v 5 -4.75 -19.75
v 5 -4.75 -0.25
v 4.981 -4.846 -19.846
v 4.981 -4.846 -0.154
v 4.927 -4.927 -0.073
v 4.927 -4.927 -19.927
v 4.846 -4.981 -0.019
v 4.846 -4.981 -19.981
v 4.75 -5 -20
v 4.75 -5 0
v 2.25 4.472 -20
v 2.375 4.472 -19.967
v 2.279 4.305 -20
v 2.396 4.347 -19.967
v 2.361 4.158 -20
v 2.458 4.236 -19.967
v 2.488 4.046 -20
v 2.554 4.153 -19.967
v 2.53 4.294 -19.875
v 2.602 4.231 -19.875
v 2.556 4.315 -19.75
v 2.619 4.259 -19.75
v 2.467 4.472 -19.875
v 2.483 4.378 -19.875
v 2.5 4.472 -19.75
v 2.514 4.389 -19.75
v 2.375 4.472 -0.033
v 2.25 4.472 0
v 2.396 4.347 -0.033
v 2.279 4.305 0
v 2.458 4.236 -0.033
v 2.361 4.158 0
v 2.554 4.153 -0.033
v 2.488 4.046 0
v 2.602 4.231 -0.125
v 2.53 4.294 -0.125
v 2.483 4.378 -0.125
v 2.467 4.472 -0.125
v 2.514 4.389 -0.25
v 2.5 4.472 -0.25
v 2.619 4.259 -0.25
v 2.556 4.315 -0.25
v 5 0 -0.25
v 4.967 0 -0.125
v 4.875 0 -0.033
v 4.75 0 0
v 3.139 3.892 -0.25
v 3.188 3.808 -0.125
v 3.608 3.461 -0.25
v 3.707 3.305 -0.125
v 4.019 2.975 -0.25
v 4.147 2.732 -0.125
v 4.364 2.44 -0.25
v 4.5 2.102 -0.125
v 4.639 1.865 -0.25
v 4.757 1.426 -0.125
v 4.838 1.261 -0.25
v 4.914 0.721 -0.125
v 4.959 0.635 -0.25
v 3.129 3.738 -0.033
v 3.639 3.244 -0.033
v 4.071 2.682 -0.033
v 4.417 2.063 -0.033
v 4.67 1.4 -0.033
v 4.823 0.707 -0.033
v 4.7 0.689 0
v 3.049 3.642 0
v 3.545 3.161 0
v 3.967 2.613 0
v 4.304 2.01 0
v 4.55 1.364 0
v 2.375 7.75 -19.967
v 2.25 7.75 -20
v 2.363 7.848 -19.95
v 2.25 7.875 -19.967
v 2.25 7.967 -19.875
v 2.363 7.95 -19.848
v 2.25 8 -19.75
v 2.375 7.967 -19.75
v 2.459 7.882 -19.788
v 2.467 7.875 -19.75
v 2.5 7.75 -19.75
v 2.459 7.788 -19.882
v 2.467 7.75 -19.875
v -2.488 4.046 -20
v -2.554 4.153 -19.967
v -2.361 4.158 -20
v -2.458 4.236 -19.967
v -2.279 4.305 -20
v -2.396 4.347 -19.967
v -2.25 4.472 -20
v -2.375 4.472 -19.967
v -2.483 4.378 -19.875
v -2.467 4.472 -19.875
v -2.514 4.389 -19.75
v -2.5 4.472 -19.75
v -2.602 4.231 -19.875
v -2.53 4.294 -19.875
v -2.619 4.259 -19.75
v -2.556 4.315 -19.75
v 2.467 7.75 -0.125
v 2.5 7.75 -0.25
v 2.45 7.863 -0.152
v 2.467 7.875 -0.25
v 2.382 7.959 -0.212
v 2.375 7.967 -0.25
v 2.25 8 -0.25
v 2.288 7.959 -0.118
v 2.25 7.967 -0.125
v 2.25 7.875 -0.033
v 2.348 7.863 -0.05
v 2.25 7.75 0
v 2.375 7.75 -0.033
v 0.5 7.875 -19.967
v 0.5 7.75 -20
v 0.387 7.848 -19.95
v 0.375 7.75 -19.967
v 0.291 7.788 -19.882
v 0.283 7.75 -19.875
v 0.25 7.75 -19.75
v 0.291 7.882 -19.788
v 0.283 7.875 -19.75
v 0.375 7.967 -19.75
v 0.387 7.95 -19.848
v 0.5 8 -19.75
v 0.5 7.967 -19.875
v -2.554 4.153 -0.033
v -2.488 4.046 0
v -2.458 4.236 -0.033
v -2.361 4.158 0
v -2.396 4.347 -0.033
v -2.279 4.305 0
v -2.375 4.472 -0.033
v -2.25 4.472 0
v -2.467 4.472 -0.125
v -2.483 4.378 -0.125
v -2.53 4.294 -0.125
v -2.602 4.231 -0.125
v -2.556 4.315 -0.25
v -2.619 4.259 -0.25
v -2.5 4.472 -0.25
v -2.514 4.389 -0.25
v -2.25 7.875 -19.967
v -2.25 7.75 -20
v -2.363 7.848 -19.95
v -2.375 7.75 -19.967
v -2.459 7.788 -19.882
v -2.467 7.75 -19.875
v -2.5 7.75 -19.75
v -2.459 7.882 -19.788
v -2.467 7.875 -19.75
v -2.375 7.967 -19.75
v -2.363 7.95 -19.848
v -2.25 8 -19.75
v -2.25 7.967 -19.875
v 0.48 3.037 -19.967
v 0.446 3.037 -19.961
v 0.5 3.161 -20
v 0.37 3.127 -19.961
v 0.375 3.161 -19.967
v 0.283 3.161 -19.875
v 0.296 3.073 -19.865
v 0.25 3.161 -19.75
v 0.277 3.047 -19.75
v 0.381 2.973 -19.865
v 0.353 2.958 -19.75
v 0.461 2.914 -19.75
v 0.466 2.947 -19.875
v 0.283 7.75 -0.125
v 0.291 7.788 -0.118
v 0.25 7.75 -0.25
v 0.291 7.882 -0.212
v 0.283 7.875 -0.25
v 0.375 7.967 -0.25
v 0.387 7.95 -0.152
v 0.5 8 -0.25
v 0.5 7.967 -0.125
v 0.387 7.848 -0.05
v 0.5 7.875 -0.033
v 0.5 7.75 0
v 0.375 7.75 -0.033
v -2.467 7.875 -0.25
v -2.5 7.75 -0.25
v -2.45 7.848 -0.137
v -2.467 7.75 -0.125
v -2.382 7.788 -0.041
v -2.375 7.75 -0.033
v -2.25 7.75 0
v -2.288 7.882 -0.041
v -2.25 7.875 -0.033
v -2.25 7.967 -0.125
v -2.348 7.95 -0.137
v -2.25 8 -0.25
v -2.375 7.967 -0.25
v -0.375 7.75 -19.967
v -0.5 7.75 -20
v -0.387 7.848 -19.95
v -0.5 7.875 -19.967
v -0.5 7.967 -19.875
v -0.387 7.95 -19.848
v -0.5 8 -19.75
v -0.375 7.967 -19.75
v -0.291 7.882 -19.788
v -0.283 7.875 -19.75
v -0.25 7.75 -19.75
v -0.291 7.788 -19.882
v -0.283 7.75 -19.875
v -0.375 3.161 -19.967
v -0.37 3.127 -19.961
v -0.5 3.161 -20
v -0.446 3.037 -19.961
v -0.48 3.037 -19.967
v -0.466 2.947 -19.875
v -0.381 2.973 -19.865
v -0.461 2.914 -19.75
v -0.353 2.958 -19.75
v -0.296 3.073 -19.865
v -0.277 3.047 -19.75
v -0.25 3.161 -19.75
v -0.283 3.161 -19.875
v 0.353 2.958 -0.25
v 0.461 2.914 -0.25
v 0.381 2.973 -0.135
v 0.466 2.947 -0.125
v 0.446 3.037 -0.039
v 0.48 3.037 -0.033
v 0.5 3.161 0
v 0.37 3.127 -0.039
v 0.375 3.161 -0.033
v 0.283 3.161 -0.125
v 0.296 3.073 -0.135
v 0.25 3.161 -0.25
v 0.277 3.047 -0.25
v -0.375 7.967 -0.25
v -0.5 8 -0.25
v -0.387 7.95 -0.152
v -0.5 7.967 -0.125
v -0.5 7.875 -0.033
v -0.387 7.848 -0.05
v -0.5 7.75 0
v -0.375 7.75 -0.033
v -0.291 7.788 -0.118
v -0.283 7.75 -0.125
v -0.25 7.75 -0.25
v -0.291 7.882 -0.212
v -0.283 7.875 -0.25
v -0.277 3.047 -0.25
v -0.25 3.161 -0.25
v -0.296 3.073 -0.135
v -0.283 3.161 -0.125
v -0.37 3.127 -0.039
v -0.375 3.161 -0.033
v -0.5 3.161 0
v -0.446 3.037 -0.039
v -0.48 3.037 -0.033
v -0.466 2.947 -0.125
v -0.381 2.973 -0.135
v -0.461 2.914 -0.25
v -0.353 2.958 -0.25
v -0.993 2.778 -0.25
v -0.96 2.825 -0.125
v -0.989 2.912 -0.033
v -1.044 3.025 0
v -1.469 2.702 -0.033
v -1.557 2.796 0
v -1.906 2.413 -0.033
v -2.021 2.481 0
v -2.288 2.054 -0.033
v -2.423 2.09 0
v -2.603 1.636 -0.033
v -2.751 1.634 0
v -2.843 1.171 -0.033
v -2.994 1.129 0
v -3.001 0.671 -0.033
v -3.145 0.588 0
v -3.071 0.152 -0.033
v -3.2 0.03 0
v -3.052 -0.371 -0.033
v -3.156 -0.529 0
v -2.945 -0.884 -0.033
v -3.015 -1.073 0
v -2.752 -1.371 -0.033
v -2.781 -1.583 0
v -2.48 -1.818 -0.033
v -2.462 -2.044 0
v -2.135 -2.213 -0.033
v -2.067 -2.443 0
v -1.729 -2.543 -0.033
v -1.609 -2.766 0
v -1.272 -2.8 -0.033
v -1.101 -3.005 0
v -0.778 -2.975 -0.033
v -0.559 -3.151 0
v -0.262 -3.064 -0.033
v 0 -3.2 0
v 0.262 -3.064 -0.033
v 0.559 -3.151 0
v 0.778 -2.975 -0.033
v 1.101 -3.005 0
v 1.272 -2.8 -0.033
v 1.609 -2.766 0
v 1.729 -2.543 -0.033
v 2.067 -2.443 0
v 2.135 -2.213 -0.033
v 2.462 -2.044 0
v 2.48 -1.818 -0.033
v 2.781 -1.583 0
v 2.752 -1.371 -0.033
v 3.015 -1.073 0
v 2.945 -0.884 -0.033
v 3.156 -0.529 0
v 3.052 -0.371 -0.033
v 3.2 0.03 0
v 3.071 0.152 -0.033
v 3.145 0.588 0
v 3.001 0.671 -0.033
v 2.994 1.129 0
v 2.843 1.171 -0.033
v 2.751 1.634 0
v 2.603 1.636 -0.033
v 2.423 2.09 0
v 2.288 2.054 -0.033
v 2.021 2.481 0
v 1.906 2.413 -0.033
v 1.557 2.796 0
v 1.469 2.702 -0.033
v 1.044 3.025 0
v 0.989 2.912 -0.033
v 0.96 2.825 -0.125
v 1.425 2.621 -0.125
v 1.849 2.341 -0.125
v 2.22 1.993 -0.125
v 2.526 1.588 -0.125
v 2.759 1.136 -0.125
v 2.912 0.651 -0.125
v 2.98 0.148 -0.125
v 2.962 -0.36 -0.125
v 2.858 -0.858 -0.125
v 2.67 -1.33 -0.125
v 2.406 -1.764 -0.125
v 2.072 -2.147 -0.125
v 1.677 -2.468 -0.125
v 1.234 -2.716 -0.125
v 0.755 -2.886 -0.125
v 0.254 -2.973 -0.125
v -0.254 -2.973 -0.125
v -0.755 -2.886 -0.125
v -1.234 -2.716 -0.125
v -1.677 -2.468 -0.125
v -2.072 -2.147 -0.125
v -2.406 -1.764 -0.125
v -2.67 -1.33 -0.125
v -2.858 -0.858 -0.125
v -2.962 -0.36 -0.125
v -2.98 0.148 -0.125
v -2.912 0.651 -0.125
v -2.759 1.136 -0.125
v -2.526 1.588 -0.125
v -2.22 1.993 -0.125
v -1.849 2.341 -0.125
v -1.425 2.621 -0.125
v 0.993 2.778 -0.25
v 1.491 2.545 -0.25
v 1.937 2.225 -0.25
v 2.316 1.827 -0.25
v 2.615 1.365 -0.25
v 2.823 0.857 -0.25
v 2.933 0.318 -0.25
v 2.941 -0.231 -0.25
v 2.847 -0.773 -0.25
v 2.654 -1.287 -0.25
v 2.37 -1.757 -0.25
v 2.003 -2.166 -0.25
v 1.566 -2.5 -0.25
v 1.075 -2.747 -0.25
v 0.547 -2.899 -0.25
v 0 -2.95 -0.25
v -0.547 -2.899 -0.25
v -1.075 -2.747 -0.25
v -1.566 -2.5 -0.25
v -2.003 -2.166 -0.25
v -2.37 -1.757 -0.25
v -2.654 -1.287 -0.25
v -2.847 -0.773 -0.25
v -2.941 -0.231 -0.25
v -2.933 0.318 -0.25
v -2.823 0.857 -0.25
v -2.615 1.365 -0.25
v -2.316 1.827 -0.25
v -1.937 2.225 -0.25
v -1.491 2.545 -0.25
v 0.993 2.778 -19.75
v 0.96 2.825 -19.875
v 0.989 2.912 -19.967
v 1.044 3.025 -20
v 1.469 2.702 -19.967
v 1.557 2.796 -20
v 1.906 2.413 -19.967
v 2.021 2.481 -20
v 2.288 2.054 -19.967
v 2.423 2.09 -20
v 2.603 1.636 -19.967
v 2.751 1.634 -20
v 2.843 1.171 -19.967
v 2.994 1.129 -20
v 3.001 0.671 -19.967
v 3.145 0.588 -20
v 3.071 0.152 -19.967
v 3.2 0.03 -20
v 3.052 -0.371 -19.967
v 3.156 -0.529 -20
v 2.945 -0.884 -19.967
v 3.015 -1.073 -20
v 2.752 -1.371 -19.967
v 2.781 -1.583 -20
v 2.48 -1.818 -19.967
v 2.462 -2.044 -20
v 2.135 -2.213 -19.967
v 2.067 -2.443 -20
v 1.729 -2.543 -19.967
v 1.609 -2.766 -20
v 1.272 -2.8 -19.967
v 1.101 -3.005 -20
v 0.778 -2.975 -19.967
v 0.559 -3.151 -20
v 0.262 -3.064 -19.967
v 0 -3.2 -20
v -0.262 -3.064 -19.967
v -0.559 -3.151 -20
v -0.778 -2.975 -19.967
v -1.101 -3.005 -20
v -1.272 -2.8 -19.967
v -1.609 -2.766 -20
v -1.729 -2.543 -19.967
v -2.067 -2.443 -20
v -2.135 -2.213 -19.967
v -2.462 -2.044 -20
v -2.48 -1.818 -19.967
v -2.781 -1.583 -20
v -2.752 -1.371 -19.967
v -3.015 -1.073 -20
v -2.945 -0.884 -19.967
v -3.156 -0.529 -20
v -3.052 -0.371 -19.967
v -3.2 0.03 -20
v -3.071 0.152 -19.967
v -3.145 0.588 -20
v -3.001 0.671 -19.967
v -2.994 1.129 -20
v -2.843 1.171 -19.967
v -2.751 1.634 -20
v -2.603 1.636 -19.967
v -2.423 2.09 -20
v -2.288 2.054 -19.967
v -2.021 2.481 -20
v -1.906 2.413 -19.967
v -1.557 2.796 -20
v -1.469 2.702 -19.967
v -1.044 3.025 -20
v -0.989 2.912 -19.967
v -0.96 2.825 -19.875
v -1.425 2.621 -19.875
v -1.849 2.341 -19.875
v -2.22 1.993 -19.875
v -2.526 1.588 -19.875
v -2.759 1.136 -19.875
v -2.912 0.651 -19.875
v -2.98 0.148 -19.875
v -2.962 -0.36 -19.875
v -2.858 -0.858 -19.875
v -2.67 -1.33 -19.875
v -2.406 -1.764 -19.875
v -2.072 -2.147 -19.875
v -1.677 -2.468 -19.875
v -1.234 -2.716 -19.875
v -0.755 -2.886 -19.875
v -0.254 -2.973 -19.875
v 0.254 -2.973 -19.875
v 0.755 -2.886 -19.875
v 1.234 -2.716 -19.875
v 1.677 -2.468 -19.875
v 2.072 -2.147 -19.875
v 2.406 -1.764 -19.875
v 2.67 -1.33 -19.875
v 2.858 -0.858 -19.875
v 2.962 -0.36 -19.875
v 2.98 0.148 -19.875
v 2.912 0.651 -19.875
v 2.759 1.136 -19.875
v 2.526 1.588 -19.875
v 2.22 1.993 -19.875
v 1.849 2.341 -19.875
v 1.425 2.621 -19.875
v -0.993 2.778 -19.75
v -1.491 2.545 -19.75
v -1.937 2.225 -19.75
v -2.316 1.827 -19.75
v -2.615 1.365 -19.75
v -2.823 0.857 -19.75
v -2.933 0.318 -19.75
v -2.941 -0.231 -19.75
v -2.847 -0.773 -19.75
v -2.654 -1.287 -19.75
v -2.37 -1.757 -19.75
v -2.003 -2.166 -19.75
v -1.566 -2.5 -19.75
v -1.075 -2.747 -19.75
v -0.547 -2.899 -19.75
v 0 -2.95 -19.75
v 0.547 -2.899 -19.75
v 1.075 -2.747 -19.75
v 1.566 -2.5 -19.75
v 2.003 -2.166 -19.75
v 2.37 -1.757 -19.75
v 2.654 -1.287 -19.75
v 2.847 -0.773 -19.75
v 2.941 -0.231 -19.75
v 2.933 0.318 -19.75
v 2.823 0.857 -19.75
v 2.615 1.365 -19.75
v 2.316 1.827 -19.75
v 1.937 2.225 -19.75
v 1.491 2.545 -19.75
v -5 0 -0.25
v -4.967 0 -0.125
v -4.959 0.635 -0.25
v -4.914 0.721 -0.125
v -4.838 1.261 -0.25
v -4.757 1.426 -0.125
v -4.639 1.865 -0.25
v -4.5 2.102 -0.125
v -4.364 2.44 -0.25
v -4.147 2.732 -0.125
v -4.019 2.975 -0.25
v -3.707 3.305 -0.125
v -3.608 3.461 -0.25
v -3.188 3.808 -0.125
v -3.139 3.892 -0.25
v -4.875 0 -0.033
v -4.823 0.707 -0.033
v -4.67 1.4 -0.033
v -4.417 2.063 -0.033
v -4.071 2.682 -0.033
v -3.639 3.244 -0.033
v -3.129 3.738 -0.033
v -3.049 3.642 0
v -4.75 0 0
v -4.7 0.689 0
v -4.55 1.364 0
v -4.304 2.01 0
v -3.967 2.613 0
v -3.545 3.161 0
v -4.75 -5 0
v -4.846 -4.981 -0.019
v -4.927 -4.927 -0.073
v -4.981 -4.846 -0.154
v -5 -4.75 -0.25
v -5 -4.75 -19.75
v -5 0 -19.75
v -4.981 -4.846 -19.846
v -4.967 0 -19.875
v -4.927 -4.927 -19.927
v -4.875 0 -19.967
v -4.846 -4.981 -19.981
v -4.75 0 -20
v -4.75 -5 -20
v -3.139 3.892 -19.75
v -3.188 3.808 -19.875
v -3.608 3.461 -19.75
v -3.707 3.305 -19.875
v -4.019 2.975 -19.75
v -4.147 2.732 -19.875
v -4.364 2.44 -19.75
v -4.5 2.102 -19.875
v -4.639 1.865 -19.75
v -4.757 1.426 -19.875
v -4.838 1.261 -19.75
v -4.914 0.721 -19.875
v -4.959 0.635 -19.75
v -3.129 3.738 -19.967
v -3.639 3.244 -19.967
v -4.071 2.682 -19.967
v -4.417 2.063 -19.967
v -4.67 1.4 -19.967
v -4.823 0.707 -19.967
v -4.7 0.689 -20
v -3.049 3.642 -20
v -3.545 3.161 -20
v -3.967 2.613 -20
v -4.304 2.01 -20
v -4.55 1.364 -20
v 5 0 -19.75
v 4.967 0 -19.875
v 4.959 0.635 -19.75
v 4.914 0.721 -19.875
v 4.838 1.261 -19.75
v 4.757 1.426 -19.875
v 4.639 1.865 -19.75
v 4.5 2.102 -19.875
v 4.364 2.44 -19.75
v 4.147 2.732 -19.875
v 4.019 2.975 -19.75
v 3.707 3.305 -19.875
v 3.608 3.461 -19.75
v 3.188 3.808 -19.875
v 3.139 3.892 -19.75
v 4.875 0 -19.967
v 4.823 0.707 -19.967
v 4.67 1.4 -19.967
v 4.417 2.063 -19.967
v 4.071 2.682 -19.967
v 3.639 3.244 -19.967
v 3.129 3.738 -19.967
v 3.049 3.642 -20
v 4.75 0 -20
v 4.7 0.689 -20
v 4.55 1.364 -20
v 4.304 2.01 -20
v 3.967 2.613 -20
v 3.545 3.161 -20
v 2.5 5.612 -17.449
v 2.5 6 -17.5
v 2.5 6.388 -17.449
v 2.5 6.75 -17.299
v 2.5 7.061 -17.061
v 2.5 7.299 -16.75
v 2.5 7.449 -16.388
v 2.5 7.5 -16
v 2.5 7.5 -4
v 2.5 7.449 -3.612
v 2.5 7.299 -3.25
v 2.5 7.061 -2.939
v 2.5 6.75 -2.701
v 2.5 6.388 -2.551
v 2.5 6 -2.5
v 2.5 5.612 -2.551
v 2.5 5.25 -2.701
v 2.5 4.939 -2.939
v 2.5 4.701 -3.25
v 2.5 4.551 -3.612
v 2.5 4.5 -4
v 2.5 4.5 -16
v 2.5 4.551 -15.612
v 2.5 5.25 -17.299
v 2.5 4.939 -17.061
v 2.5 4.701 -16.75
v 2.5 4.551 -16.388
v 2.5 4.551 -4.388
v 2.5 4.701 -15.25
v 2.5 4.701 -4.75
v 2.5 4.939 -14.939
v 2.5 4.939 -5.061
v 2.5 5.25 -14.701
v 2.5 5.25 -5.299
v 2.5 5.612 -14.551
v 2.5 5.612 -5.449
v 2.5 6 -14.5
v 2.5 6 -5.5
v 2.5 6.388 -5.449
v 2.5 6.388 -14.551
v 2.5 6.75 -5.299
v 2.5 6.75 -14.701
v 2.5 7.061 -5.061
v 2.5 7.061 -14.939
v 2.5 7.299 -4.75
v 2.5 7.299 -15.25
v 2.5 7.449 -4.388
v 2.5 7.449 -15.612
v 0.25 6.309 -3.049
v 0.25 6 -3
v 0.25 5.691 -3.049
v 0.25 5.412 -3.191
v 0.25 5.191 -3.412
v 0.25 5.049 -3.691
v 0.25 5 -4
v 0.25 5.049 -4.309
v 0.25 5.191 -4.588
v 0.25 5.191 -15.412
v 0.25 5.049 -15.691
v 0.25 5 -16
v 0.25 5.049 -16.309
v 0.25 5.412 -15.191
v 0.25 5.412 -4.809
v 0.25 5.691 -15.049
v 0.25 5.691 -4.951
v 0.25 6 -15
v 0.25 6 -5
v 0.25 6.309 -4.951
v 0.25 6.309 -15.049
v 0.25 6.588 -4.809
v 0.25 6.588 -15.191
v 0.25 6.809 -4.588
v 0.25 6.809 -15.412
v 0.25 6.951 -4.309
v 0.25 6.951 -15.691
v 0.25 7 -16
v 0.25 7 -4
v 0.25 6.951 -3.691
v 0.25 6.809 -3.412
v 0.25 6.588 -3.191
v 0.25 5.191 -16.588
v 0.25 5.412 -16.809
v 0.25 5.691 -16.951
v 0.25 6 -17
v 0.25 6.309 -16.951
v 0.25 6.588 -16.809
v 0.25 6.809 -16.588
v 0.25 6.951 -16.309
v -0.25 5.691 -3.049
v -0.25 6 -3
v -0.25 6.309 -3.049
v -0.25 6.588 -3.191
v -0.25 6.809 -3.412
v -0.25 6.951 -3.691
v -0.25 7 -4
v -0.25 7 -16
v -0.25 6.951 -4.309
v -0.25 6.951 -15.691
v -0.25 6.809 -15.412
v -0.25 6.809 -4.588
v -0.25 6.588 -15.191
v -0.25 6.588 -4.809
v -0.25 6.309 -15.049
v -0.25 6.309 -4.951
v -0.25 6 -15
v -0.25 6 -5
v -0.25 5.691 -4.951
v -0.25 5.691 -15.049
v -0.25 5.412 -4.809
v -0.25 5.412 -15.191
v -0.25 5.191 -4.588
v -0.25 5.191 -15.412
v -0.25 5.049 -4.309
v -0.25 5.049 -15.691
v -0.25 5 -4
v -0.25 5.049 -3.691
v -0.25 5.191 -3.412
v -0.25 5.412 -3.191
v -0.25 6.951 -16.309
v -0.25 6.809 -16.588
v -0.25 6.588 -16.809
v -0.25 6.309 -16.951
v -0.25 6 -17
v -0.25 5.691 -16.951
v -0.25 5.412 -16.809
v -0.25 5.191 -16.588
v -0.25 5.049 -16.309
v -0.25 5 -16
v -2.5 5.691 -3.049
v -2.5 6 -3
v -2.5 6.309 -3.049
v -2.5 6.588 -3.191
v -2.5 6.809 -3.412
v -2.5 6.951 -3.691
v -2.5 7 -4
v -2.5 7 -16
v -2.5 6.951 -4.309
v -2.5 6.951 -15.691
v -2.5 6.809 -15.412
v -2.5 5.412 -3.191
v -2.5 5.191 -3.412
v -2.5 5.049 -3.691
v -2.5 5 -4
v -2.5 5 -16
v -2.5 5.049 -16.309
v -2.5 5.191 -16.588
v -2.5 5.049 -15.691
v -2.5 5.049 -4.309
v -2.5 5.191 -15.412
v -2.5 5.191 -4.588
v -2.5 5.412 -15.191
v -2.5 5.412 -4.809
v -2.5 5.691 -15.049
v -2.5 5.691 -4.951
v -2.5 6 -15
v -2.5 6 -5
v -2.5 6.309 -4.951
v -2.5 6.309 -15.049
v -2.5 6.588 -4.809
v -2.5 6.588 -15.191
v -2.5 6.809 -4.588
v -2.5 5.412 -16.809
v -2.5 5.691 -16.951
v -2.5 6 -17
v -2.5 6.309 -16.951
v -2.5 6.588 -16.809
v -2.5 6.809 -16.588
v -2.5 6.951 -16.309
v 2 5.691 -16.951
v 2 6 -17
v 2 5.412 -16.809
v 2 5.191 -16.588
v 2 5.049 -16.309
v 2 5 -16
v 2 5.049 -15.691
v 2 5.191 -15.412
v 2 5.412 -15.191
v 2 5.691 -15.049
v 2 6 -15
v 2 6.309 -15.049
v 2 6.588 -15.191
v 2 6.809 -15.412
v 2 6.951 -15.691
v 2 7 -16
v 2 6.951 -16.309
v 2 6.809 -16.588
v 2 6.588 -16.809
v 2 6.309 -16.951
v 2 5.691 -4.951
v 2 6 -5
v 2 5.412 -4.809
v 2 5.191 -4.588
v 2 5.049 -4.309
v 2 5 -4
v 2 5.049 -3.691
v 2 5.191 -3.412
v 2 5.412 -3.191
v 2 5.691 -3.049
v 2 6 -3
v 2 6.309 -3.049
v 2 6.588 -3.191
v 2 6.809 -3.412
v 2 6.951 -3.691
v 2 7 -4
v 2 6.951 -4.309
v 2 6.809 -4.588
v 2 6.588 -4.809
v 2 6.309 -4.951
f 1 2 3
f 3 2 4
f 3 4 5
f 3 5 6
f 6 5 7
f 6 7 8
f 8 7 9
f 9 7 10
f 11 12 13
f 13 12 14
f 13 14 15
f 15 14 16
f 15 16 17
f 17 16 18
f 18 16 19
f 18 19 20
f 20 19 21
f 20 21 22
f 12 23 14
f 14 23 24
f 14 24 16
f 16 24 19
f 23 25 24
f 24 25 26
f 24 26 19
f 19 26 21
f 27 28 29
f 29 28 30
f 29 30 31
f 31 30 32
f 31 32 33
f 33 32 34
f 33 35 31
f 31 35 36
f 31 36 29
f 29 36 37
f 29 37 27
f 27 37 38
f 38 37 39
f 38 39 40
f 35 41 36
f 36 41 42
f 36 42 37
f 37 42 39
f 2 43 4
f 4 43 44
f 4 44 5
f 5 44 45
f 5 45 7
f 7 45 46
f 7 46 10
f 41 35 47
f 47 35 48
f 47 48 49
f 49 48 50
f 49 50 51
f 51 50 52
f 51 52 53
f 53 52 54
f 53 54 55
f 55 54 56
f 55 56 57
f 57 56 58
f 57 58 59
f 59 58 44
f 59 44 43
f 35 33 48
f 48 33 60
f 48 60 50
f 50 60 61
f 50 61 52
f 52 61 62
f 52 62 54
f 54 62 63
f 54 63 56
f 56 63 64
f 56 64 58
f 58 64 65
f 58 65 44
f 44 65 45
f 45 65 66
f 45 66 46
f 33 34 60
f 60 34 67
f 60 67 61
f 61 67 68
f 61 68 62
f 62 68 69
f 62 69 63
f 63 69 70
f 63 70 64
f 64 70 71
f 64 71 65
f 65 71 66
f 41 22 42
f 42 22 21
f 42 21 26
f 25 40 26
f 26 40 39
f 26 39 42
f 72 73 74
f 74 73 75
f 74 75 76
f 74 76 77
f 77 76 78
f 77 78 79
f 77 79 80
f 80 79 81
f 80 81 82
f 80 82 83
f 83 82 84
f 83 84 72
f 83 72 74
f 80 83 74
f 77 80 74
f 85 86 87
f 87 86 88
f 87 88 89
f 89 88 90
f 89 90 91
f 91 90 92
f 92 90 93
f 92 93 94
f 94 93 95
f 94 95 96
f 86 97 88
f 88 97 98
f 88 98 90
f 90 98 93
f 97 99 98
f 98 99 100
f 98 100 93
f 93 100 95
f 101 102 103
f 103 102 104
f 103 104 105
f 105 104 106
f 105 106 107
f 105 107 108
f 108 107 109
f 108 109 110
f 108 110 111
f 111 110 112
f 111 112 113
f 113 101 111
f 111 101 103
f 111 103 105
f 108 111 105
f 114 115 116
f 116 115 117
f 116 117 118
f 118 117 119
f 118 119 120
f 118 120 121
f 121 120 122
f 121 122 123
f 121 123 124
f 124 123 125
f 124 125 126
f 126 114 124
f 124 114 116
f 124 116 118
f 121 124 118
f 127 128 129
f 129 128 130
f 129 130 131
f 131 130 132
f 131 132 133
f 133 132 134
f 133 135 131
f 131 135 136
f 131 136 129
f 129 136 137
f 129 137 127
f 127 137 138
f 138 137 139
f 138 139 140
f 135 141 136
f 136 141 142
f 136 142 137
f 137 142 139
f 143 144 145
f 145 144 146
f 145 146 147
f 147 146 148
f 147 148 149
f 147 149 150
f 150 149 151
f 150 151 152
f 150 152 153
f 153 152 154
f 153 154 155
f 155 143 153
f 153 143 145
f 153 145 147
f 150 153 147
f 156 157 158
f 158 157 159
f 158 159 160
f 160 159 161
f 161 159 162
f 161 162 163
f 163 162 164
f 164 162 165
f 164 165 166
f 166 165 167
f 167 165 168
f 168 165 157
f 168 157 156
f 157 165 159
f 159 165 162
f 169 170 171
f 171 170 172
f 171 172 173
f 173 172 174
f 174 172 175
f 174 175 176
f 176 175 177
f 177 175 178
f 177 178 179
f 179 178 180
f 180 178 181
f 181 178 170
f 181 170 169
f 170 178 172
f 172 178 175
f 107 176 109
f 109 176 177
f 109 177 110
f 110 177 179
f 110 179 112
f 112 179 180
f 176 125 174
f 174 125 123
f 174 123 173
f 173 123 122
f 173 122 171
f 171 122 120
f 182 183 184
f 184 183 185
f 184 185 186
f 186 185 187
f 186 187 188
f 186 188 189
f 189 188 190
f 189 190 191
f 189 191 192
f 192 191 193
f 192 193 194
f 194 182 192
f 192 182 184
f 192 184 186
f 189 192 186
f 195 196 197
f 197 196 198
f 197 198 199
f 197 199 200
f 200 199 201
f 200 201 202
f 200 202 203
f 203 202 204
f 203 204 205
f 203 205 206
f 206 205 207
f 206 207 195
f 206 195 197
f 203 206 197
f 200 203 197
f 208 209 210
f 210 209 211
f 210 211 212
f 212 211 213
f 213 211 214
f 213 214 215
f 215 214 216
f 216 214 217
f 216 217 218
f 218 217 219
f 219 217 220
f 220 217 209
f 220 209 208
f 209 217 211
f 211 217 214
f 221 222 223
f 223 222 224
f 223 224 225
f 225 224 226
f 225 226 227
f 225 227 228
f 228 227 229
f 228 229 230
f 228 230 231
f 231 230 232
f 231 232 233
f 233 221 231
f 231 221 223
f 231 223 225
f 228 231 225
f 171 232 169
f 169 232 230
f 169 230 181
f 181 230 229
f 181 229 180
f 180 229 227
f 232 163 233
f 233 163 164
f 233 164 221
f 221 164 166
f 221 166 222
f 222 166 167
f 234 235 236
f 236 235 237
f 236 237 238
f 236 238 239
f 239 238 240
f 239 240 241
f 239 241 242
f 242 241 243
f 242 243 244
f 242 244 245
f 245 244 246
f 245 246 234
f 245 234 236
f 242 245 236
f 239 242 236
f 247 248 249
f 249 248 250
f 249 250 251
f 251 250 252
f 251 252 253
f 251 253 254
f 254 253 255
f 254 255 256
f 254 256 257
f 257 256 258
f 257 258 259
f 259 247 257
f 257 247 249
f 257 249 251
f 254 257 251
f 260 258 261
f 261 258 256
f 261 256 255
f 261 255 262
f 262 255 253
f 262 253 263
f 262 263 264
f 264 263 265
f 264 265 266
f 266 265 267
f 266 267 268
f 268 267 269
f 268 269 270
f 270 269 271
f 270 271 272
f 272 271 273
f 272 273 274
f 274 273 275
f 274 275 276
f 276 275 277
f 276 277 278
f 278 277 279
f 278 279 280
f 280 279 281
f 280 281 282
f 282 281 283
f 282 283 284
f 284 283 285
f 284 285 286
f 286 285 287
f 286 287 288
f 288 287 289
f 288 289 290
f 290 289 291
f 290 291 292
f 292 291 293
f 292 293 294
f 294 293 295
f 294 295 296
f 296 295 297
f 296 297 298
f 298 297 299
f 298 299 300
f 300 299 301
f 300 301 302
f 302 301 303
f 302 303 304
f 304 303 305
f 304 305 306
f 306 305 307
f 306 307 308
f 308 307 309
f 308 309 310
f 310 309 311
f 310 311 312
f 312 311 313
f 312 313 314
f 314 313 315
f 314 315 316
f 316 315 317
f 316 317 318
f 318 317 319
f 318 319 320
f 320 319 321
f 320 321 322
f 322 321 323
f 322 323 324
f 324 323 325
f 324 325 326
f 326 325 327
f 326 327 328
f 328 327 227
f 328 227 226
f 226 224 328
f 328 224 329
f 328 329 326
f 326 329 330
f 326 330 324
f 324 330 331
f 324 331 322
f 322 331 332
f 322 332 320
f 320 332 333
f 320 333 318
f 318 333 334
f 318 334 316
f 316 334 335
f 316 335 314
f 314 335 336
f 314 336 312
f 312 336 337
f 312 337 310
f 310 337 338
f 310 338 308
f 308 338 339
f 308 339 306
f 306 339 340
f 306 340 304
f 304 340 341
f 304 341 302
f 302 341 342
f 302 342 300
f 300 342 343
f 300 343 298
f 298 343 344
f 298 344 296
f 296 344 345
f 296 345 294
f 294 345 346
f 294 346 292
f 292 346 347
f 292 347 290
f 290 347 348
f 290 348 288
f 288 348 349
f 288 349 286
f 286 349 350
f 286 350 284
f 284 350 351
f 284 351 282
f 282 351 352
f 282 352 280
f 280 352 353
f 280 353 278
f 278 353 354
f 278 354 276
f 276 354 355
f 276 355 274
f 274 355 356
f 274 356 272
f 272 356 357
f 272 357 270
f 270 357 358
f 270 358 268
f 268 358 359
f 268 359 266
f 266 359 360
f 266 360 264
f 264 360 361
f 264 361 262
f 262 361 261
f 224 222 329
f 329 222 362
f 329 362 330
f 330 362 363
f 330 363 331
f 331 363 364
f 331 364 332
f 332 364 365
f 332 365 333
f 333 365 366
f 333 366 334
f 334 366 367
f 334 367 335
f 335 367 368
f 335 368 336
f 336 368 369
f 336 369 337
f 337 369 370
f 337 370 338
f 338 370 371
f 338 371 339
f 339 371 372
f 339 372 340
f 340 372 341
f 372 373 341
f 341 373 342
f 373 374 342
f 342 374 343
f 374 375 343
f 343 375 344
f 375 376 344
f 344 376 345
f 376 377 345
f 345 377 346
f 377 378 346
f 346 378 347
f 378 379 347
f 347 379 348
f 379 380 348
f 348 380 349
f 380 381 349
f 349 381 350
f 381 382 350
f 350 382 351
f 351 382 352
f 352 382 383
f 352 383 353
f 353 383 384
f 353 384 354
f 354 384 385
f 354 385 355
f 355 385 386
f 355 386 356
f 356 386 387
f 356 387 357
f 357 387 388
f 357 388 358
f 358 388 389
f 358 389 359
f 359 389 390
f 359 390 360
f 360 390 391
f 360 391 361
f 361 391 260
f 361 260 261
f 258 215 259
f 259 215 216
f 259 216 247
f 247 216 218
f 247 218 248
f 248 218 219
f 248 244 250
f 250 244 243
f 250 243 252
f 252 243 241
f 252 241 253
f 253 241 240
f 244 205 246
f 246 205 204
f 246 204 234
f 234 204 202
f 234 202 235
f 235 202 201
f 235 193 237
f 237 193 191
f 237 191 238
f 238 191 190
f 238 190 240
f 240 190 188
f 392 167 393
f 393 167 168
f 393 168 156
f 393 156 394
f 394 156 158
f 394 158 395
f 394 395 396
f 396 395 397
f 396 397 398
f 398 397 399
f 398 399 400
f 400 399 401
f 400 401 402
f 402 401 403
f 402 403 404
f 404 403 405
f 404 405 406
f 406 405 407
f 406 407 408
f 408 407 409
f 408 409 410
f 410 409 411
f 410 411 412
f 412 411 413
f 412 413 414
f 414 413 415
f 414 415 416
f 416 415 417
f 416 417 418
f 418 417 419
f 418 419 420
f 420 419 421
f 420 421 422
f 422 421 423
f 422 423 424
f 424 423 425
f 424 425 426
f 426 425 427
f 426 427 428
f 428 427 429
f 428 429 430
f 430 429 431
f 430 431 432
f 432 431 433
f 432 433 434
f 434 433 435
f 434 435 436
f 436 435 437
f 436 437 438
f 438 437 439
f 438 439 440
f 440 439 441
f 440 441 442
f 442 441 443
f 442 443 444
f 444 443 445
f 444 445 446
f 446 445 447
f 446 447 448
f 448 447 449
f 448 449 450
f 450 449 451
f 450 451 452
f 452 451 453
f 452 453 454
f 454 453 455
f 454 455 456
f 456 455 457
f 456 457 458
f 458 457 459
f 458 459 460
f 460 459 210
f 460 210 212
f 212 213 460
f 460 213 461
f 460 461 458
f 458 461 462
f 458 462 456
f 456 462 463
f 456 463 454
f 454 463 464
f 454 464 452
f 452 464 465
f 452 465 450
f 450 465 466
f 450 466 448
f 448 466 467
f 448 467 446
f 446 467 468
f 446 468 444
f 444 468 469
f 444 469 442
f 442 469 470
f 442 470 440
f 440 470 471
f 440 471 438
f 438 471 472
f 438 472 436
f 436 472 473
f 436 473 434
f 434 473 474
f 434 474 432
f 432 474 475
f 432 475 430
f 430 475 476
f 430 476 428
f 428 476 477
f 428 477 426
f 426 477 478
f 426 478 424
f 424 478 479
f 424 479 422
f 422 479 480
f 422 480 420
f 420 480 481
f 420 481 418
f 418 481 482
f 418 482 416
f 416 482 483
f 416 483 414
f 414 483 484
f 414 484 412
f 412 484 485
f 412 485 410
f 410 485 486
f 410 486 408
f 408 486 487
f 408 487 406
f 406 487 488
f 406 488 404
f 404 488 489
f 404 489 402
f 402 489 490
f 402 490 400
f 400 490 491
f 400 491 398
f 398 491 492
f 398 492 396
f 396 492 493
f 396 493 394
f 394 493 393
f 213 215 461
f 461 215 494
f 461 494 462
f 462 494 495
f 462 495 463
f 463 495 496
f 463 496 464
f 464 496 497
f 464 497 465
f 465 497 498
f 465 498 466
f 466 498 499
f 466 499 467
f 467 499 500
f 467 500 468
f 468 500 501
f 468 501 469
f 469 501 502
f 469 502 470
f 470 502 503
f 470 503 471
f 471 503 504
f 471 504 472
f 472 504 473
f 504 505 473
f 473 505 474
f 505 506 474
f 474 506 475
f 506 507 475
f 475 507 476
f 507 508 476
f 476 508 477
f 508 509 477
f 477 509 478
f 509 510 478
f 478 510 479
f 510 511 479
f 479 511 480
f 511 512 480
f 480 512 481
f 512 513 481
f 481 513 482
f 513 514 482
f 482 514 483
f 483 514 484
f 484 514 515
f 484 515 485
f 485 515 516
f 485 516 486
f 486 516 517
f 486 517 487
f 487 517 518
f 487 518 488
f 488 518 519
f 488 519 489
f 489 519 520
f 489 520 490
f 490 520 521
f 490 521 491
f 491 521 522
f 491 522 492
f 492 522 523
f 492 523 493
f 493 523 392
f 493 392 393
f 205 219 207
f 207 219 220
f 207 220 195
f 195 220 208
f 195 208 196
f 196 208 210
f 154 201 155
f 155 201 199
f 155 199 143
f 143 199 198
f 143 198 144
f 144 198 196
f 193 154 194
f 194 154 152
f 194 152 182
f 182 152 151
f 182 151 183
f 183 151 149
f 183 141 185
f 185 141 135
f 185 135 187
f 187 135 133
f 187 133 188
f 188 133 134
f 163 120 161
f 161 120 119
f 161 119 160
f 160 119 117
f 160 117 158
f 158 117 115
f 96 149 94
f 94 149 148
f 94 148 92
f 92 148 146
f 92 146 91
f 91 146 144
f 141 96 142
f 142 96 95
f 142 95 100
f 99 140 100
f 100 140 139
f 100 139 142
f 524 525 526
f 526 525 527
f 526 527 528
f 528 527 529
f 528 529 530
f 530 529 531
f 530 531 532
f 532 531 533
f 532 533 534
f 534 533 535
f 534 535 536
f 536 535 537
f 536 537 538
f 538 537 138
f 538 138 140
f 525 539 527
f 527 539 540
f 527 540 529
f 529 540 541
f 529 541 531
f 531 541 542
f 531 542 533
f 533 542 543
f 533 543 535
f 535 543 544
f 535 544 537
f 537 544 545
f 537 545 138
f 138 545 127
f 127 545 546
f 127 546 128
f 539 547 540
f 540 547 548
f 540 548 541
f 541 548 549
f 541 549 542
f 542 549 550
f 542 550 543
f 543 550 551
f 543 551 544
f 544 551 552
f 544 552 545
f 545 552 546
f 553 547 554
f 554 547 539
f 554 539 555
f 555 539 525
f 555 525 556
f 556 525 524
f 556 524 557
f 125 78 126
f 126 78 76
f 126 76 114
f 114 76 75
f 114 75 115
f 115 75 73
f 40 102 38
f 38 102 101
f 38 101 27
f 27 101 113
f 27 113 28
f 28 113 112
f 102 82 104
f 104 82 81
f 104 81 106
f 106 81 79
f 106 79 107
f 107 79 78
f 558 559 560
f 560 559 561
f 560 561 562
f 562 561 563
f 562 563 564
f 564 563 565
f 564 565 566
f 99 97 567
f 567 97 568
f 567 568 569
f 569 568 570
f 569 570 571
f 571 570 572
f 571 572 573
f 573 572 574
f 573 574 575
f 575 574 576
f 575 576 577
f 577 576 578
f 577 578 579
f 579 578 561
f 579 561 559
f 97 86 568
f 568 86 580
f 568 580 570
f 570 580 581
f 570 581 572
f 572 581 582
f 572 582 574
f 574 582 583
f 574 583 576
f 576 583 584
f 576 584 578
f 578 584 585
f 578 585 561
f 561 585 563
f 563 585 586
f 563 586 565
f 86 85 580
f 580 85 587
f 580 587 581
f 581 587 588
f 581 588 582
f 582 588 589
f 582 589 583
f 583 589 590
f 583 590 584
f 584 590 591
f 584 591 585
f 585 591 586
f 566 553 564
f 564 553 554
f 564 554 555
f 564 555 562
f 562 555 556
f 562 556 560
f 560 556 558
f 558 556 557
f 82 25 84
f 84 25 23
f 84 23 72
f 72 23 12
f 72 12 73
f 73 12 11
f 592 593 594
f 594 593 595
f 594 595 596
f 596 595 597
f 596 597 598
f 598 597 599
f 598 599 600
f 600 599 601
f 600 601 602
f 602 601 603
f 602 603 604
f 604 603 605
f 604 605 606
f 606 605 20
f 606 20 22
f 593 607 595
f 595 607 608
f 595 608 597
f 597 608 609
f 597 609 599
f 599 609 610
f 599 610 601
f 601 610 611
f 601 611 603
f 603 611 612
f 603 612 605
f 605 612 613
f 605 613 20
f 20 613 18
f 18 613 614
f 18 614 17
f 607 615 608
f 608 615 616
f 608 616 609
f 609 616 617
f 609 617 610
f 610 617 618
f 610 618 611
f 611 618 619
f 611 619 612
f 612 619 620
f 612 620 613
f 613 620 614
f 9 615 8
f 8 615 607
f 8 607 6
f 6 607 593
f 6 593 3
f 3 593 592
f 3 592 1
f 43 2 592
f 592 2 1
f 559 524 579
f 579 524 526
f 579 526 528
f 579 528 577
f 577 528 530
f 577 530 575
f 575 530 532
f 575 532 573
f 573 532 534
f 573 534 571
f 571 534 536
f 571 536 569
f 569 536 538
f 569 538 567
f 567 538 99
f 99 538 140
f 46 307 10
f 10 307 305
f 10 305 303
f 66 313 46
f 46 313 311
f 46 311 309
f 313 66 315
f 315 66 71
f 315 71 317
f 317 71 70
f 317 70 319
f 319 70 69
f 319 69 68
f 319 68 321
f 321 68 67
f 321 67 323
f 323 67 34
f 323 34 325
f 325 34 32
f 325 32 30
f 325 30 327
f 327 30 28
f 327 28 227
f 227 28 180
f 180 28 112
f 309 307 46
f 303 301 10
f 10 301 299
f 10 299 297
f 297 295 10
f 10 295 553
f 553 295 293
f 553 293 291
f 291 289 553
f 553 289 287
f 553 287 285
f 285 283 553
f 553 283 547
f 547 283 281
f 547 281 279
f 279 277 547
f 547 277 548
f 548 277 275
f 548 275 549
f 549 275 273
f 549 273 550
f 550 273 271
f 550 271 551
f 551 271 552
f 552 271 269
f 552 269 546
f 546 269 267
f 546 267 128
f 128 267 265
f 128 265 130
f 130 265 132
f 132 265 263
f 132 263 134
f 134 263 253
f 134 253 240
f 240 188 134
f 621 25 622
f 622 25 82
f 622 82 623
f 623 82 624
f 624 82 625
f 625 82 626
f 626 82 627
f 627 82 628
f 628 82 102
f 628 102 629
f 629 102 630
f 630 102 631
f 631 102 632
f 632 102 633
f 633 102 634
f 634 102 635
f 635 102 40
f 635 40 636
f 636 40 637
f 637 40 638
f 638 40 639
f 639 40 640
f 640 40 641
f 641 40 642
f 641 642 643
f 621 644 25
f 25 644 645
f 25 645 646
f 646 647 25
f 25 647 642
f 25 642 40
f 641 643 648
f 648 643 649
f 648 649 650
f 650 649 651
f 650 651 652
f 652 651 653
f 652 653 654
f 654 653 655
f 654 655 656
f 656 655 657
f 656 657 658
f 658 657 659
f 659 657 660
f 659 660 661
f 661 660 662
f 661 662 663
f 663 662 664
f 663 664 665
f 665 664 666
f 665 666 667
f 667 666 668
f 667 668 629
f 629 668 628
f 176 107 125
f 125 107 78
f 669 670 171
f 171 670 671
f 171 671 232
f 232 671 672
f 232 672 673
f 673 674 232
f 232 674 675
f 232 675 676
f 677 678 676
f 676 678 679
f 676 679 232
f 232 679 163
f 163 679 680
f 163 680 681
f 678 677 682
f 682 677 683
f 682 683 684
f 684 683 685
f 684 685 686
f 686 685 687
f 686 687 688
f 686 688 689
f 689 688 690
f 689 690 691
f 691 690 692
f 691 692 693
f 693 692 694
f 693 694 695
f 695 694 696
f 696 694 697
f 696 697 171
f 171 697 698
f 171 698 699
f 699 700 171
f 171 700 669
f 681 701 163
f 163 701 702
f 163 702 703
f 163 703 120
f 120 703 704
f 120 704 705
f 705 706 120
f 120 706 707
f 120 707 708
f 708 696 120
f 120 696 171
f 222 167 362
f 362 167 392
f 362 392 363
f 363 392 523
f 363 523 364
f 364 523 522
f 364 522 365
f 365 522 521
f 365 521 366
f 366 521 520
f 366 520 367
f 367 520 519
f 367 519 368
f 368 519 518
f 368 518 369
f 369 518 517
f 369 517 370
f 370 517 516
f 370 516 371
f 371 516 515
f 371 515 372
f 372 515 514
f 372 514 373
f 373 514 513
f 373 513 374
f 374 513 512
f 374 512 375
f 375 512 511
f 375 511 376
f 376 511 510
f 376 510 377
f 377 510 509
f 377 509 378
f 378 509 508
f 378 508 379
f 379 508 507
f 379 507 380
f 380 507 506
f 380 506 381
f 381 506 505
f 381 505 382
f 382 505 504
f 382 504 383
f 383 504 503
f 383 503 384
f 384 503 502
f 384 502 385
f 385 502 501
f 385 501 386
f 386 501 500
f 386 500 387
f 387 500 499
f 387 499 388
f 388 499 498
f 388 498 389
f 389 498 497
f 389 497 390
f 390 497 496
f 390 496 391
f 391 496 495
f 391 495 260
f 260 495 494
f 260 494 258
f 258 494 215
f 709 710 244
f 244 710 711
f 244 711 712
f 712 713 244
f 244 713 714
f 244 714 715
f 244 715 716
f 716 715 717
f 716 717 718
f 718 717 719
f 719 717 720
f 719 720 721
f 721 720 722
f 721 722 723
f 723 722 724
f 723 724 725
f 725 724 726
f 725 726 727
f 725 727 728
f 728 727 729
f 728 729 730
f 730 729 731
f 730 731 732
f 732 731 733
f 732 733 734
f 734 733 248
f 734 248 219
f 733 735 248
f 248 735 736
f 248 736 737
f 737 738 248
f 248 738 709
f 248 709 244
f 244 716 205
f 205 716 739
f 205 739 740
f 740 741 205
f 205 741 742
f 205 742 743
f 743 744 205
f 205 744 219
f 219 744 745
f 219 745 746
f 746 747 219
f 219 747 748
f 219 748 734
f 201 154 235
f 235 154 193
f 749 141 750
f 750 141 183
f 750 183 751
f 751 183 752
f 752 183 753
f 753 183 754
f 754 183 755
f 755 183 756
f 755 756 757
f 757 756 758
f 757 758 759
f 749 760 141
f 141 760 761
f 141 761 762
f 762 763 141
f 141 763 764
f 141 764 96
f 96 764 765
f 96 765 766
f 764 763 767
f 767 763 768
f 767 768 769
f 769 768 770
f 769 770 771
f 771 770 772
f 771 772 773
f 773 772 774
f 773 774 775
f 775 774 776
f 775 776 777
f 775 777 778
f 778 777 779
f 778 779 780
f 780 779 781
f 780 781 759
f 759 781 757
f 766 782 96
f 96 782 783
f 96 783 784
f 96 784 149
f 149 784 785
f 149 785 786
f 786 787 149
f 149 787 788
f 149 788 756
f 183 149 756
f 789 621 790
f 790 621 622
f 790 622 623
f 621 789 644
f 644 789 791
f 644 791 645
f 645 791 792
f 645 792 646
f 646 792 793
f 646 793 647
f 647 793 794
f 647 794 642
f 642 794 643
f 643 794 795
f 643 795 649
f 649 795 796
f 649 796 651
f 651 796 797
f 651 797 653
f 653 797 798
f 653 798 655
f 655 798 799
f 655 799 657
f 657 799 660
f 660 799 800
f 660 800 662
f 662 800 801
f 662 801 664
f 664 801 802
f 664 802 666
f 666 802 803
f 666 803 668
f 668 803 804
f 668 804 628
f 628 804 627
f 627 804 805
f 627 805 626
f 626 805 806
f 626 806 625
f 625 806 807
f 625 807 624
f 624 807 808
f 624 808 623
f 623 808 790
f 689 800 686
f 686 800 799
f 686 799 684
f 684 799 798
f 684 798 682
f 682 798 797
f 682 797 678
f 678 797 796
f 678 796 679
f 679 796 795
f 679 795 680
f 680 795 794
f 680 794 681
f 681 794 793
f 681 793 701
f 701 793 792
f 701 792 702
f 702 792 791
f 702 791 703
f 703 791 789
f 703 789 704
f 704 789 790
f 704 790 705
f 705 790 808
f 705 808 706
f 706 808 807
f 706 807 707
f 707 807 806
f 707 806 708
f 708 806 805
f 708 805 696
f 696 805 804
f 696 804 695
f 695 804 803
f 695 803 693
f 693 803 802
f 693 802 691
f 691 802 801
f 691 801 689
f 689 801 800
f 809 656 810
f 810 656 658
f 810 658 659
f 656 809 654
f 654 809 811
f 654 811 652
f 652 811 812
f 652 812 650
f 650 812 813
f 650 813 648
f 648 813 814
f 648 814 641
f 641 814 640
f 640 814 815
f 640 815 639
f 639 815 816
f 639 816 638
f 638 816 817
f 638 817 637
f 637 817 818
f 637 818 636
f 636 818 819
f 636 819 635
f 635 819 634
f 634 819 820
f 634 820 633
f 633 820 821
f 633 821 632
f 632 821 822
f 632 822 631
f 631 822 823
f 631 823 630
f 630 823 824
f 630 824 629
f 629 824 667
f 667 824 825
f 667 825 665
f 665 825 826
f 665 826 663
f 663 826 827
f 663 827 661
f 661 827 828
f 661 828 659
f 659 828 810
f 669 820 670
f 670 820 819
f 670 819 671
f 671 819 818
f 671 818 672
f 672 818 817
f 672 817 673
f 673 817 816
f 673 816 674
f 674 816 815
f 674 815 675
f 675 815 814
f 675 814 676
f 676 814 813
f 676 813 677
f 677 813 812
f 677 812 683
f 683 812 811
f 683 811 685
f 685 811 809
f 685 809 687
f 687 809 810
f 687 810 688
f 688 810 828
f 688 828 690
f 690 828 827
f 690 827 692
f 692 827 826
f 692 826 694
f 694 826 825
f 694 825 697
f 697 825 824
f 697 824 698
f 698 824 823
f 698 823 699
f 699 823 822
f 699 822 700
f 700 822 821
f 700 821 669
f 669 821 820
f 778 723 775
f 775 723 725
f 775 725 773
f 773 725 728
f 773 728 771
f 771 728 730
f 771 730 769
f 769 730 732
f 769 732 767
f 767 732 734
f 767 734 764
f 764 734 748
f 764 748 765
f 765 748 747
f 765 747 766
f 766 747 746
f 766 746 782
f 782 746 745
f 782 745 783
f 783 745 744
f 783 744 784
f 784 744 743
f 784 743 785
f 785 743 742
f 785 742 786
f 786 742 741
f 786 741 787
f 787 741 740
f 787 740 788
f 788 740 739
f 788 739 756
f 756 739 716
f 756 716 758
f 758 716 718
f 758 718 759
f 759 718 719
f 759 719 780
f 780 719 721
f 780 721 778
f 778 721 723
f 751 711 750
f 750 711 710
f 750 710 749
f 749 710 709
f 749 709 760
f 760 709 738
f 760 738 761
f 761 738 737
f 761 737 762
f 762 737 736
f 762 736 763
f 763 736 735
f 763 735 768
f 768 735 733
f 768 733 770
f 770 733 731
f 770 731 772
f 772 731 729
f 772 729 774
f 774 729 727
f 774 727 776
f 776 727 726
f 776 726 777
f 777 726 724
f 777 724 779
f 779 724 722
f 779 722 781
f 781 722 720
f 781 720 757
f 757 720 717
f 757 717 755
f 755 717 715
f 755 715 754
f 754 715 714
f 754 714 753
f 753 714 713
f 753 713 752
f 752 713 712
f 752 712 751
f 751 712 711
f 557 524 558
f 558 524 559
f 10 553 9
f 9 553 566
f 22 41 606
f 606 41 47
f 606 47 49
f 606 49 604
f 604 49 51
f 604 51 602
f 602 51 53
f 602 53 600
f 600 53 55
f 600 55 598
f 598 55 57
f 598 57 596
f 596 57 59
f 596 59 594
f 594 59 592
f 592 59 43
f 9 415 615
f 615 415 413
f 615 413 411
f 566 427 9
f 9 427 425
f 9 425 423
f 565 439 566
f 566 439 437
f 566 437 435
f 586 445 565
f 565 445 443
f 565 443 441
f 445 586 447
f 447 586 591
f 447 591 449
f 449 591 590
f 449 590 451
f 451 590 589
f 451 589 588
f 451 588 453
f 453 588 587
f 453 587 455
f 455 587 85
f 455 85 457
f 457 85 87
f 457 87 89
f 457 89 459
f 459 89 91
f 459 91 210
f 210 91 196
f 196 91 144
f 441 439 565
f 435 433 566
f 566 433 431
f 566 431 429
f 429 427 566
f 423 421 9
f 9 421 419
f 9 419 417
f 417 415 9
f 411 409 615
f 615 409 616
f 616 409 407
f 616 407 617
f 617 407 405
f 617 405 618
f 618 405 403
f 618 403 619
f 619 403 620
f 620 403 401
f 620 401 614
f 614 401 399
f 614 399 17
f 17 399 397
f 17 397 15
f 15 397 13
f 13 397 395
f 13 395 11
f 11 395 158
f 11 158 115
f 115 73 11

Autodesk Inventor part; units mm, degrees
ref_plane "YZ Plane" through (0, 0, 0) normal (1, 0, 0) x (0, 1, 0)
ref_plane "XZ Plane" through (0, 0, 0) normal (0, 1, 0) x (-1, 0, 0)
ref_plane "XY Plane" through (0, 0, 0) normal (0, 0, 1) x (1, 0, 0)
sketch "Sketch1" plane through (0, 0, 0) normal (0, 0, 1) x (1, 0, 0)
  arc A0 (-2.5, 4.3301) -> (2.5, 4.3301) centre (0, 0) ccw
  line L0 (2.5, 4.3301) -> (2.5, 8)
  line L1 (2.5, 8) -> (-2.5, 8)
  line L2 (-2.5, 8) -> (-2.5, 4.3301)
  circle A1 centre (0, 0) radius 2.95
  line L3 (-0.25, 8) -> (0.25, 8)
  line L4 (0.25, 8) -> (0.25, 2.5)
  line L5 (0.25, 2.5) -> (-0.25, 2.5)
  line L6 (-0.25, 2.5) -> (-0.25, 8)
  line L7 (-5, 0) -> (-5, -5)
  line L8 (-5, -5) -> (0, -5)
  line L9 (5, 0) -> (5, -5)
  line L10 (5, -5) -> (0, -5)
  point P0 (0.25, 2.9394)
  point P1 (-0.25, 2.9394)
  dimension "d0" = 10
  dimension "d1" = 5
  dimension "d2" = 2.5
  dimension "d3" = 8
  dimension "d4" = 3.6699
  dimension "d7" = 5.9
  dimension "d8" = 0.5
  dimension "d9" = 0.25
  dimension "d10" = 0
  dimension "d11" = 5.5
extrude "Extrusion1" add sketch "Sketch1" against normal blind 20 contours L2 L1 L6 A1 L4 L0 A0 | A0 L8 L7 | A0 L9 L10
sketch "Sketch2" plane through (2.5, 4.3301, 0) normal (1, 0, 0) x (0, 0, -1)
  circle A0 centre (4, 1.6699) radius 1
  circle A1 centre (16, 1.6699) radius 1
  line L0 (0, 0) -> (0, 3.6699) projected
  line L1 (20, 3.6699) -> (20, 0) projected
  line L2 (0, 3.6699) -> (20, 3.6699) projected
  point P0 (0, -4.3301)
  dimension "d12" = 2
  dimension "d13" = 4
  dimension "d14" = 2
  dimension "d15" = 4
  dimension "d16" = 2
  dimension "d17" = 2
extrude "Extrusion2" cut sketch "Sketch2" against normal up to surface (5 mm away)
chamfer "Chamfer1" distance 0.5 angle 45 2 edges at (2.5, 6, -3) (2.5, 6, -15)
fillet "Fillet1" radius 0.25 32 edges at (-0.25, 5.4697, 0) (0.25, 5.4697, 0) (-0.25, 8, -10) (0.25, 8, -10) (-1.375, 8, -20) (1.375, 8, -20) (-0.25, 5.4697, -20) (0.25, 5.4697, -20) (-1.375, 8, 0) (1.375, 8, 0) (-2.5, 8, -10) (-2.5, 6.1651, 0) (-2.5, 6.1651, -20) (2.5, 8, -10) (2.5, 6.1651, -20) (2.5, 6.1651, 0) (-5, -2.5, 0) (-4.3301, 2.5, 0) (5, -2.5, 0) (4.3301, 2.5, 0) (5, -2.5, -20) (4.3301, 2.5, -20) (0, -2.95, 0) (-5, -2.5, -20) (-4.3301, 2.5, -20) (0, -2.95, -20) (0.25, 2.9394, -10) (-0.25, 2.9394, -10) (-2.5, 4.3301, -10) (2.5, 4.3301, -10) (-5, -5, -10) (5, -5, -10)
properties part number "Holder"
